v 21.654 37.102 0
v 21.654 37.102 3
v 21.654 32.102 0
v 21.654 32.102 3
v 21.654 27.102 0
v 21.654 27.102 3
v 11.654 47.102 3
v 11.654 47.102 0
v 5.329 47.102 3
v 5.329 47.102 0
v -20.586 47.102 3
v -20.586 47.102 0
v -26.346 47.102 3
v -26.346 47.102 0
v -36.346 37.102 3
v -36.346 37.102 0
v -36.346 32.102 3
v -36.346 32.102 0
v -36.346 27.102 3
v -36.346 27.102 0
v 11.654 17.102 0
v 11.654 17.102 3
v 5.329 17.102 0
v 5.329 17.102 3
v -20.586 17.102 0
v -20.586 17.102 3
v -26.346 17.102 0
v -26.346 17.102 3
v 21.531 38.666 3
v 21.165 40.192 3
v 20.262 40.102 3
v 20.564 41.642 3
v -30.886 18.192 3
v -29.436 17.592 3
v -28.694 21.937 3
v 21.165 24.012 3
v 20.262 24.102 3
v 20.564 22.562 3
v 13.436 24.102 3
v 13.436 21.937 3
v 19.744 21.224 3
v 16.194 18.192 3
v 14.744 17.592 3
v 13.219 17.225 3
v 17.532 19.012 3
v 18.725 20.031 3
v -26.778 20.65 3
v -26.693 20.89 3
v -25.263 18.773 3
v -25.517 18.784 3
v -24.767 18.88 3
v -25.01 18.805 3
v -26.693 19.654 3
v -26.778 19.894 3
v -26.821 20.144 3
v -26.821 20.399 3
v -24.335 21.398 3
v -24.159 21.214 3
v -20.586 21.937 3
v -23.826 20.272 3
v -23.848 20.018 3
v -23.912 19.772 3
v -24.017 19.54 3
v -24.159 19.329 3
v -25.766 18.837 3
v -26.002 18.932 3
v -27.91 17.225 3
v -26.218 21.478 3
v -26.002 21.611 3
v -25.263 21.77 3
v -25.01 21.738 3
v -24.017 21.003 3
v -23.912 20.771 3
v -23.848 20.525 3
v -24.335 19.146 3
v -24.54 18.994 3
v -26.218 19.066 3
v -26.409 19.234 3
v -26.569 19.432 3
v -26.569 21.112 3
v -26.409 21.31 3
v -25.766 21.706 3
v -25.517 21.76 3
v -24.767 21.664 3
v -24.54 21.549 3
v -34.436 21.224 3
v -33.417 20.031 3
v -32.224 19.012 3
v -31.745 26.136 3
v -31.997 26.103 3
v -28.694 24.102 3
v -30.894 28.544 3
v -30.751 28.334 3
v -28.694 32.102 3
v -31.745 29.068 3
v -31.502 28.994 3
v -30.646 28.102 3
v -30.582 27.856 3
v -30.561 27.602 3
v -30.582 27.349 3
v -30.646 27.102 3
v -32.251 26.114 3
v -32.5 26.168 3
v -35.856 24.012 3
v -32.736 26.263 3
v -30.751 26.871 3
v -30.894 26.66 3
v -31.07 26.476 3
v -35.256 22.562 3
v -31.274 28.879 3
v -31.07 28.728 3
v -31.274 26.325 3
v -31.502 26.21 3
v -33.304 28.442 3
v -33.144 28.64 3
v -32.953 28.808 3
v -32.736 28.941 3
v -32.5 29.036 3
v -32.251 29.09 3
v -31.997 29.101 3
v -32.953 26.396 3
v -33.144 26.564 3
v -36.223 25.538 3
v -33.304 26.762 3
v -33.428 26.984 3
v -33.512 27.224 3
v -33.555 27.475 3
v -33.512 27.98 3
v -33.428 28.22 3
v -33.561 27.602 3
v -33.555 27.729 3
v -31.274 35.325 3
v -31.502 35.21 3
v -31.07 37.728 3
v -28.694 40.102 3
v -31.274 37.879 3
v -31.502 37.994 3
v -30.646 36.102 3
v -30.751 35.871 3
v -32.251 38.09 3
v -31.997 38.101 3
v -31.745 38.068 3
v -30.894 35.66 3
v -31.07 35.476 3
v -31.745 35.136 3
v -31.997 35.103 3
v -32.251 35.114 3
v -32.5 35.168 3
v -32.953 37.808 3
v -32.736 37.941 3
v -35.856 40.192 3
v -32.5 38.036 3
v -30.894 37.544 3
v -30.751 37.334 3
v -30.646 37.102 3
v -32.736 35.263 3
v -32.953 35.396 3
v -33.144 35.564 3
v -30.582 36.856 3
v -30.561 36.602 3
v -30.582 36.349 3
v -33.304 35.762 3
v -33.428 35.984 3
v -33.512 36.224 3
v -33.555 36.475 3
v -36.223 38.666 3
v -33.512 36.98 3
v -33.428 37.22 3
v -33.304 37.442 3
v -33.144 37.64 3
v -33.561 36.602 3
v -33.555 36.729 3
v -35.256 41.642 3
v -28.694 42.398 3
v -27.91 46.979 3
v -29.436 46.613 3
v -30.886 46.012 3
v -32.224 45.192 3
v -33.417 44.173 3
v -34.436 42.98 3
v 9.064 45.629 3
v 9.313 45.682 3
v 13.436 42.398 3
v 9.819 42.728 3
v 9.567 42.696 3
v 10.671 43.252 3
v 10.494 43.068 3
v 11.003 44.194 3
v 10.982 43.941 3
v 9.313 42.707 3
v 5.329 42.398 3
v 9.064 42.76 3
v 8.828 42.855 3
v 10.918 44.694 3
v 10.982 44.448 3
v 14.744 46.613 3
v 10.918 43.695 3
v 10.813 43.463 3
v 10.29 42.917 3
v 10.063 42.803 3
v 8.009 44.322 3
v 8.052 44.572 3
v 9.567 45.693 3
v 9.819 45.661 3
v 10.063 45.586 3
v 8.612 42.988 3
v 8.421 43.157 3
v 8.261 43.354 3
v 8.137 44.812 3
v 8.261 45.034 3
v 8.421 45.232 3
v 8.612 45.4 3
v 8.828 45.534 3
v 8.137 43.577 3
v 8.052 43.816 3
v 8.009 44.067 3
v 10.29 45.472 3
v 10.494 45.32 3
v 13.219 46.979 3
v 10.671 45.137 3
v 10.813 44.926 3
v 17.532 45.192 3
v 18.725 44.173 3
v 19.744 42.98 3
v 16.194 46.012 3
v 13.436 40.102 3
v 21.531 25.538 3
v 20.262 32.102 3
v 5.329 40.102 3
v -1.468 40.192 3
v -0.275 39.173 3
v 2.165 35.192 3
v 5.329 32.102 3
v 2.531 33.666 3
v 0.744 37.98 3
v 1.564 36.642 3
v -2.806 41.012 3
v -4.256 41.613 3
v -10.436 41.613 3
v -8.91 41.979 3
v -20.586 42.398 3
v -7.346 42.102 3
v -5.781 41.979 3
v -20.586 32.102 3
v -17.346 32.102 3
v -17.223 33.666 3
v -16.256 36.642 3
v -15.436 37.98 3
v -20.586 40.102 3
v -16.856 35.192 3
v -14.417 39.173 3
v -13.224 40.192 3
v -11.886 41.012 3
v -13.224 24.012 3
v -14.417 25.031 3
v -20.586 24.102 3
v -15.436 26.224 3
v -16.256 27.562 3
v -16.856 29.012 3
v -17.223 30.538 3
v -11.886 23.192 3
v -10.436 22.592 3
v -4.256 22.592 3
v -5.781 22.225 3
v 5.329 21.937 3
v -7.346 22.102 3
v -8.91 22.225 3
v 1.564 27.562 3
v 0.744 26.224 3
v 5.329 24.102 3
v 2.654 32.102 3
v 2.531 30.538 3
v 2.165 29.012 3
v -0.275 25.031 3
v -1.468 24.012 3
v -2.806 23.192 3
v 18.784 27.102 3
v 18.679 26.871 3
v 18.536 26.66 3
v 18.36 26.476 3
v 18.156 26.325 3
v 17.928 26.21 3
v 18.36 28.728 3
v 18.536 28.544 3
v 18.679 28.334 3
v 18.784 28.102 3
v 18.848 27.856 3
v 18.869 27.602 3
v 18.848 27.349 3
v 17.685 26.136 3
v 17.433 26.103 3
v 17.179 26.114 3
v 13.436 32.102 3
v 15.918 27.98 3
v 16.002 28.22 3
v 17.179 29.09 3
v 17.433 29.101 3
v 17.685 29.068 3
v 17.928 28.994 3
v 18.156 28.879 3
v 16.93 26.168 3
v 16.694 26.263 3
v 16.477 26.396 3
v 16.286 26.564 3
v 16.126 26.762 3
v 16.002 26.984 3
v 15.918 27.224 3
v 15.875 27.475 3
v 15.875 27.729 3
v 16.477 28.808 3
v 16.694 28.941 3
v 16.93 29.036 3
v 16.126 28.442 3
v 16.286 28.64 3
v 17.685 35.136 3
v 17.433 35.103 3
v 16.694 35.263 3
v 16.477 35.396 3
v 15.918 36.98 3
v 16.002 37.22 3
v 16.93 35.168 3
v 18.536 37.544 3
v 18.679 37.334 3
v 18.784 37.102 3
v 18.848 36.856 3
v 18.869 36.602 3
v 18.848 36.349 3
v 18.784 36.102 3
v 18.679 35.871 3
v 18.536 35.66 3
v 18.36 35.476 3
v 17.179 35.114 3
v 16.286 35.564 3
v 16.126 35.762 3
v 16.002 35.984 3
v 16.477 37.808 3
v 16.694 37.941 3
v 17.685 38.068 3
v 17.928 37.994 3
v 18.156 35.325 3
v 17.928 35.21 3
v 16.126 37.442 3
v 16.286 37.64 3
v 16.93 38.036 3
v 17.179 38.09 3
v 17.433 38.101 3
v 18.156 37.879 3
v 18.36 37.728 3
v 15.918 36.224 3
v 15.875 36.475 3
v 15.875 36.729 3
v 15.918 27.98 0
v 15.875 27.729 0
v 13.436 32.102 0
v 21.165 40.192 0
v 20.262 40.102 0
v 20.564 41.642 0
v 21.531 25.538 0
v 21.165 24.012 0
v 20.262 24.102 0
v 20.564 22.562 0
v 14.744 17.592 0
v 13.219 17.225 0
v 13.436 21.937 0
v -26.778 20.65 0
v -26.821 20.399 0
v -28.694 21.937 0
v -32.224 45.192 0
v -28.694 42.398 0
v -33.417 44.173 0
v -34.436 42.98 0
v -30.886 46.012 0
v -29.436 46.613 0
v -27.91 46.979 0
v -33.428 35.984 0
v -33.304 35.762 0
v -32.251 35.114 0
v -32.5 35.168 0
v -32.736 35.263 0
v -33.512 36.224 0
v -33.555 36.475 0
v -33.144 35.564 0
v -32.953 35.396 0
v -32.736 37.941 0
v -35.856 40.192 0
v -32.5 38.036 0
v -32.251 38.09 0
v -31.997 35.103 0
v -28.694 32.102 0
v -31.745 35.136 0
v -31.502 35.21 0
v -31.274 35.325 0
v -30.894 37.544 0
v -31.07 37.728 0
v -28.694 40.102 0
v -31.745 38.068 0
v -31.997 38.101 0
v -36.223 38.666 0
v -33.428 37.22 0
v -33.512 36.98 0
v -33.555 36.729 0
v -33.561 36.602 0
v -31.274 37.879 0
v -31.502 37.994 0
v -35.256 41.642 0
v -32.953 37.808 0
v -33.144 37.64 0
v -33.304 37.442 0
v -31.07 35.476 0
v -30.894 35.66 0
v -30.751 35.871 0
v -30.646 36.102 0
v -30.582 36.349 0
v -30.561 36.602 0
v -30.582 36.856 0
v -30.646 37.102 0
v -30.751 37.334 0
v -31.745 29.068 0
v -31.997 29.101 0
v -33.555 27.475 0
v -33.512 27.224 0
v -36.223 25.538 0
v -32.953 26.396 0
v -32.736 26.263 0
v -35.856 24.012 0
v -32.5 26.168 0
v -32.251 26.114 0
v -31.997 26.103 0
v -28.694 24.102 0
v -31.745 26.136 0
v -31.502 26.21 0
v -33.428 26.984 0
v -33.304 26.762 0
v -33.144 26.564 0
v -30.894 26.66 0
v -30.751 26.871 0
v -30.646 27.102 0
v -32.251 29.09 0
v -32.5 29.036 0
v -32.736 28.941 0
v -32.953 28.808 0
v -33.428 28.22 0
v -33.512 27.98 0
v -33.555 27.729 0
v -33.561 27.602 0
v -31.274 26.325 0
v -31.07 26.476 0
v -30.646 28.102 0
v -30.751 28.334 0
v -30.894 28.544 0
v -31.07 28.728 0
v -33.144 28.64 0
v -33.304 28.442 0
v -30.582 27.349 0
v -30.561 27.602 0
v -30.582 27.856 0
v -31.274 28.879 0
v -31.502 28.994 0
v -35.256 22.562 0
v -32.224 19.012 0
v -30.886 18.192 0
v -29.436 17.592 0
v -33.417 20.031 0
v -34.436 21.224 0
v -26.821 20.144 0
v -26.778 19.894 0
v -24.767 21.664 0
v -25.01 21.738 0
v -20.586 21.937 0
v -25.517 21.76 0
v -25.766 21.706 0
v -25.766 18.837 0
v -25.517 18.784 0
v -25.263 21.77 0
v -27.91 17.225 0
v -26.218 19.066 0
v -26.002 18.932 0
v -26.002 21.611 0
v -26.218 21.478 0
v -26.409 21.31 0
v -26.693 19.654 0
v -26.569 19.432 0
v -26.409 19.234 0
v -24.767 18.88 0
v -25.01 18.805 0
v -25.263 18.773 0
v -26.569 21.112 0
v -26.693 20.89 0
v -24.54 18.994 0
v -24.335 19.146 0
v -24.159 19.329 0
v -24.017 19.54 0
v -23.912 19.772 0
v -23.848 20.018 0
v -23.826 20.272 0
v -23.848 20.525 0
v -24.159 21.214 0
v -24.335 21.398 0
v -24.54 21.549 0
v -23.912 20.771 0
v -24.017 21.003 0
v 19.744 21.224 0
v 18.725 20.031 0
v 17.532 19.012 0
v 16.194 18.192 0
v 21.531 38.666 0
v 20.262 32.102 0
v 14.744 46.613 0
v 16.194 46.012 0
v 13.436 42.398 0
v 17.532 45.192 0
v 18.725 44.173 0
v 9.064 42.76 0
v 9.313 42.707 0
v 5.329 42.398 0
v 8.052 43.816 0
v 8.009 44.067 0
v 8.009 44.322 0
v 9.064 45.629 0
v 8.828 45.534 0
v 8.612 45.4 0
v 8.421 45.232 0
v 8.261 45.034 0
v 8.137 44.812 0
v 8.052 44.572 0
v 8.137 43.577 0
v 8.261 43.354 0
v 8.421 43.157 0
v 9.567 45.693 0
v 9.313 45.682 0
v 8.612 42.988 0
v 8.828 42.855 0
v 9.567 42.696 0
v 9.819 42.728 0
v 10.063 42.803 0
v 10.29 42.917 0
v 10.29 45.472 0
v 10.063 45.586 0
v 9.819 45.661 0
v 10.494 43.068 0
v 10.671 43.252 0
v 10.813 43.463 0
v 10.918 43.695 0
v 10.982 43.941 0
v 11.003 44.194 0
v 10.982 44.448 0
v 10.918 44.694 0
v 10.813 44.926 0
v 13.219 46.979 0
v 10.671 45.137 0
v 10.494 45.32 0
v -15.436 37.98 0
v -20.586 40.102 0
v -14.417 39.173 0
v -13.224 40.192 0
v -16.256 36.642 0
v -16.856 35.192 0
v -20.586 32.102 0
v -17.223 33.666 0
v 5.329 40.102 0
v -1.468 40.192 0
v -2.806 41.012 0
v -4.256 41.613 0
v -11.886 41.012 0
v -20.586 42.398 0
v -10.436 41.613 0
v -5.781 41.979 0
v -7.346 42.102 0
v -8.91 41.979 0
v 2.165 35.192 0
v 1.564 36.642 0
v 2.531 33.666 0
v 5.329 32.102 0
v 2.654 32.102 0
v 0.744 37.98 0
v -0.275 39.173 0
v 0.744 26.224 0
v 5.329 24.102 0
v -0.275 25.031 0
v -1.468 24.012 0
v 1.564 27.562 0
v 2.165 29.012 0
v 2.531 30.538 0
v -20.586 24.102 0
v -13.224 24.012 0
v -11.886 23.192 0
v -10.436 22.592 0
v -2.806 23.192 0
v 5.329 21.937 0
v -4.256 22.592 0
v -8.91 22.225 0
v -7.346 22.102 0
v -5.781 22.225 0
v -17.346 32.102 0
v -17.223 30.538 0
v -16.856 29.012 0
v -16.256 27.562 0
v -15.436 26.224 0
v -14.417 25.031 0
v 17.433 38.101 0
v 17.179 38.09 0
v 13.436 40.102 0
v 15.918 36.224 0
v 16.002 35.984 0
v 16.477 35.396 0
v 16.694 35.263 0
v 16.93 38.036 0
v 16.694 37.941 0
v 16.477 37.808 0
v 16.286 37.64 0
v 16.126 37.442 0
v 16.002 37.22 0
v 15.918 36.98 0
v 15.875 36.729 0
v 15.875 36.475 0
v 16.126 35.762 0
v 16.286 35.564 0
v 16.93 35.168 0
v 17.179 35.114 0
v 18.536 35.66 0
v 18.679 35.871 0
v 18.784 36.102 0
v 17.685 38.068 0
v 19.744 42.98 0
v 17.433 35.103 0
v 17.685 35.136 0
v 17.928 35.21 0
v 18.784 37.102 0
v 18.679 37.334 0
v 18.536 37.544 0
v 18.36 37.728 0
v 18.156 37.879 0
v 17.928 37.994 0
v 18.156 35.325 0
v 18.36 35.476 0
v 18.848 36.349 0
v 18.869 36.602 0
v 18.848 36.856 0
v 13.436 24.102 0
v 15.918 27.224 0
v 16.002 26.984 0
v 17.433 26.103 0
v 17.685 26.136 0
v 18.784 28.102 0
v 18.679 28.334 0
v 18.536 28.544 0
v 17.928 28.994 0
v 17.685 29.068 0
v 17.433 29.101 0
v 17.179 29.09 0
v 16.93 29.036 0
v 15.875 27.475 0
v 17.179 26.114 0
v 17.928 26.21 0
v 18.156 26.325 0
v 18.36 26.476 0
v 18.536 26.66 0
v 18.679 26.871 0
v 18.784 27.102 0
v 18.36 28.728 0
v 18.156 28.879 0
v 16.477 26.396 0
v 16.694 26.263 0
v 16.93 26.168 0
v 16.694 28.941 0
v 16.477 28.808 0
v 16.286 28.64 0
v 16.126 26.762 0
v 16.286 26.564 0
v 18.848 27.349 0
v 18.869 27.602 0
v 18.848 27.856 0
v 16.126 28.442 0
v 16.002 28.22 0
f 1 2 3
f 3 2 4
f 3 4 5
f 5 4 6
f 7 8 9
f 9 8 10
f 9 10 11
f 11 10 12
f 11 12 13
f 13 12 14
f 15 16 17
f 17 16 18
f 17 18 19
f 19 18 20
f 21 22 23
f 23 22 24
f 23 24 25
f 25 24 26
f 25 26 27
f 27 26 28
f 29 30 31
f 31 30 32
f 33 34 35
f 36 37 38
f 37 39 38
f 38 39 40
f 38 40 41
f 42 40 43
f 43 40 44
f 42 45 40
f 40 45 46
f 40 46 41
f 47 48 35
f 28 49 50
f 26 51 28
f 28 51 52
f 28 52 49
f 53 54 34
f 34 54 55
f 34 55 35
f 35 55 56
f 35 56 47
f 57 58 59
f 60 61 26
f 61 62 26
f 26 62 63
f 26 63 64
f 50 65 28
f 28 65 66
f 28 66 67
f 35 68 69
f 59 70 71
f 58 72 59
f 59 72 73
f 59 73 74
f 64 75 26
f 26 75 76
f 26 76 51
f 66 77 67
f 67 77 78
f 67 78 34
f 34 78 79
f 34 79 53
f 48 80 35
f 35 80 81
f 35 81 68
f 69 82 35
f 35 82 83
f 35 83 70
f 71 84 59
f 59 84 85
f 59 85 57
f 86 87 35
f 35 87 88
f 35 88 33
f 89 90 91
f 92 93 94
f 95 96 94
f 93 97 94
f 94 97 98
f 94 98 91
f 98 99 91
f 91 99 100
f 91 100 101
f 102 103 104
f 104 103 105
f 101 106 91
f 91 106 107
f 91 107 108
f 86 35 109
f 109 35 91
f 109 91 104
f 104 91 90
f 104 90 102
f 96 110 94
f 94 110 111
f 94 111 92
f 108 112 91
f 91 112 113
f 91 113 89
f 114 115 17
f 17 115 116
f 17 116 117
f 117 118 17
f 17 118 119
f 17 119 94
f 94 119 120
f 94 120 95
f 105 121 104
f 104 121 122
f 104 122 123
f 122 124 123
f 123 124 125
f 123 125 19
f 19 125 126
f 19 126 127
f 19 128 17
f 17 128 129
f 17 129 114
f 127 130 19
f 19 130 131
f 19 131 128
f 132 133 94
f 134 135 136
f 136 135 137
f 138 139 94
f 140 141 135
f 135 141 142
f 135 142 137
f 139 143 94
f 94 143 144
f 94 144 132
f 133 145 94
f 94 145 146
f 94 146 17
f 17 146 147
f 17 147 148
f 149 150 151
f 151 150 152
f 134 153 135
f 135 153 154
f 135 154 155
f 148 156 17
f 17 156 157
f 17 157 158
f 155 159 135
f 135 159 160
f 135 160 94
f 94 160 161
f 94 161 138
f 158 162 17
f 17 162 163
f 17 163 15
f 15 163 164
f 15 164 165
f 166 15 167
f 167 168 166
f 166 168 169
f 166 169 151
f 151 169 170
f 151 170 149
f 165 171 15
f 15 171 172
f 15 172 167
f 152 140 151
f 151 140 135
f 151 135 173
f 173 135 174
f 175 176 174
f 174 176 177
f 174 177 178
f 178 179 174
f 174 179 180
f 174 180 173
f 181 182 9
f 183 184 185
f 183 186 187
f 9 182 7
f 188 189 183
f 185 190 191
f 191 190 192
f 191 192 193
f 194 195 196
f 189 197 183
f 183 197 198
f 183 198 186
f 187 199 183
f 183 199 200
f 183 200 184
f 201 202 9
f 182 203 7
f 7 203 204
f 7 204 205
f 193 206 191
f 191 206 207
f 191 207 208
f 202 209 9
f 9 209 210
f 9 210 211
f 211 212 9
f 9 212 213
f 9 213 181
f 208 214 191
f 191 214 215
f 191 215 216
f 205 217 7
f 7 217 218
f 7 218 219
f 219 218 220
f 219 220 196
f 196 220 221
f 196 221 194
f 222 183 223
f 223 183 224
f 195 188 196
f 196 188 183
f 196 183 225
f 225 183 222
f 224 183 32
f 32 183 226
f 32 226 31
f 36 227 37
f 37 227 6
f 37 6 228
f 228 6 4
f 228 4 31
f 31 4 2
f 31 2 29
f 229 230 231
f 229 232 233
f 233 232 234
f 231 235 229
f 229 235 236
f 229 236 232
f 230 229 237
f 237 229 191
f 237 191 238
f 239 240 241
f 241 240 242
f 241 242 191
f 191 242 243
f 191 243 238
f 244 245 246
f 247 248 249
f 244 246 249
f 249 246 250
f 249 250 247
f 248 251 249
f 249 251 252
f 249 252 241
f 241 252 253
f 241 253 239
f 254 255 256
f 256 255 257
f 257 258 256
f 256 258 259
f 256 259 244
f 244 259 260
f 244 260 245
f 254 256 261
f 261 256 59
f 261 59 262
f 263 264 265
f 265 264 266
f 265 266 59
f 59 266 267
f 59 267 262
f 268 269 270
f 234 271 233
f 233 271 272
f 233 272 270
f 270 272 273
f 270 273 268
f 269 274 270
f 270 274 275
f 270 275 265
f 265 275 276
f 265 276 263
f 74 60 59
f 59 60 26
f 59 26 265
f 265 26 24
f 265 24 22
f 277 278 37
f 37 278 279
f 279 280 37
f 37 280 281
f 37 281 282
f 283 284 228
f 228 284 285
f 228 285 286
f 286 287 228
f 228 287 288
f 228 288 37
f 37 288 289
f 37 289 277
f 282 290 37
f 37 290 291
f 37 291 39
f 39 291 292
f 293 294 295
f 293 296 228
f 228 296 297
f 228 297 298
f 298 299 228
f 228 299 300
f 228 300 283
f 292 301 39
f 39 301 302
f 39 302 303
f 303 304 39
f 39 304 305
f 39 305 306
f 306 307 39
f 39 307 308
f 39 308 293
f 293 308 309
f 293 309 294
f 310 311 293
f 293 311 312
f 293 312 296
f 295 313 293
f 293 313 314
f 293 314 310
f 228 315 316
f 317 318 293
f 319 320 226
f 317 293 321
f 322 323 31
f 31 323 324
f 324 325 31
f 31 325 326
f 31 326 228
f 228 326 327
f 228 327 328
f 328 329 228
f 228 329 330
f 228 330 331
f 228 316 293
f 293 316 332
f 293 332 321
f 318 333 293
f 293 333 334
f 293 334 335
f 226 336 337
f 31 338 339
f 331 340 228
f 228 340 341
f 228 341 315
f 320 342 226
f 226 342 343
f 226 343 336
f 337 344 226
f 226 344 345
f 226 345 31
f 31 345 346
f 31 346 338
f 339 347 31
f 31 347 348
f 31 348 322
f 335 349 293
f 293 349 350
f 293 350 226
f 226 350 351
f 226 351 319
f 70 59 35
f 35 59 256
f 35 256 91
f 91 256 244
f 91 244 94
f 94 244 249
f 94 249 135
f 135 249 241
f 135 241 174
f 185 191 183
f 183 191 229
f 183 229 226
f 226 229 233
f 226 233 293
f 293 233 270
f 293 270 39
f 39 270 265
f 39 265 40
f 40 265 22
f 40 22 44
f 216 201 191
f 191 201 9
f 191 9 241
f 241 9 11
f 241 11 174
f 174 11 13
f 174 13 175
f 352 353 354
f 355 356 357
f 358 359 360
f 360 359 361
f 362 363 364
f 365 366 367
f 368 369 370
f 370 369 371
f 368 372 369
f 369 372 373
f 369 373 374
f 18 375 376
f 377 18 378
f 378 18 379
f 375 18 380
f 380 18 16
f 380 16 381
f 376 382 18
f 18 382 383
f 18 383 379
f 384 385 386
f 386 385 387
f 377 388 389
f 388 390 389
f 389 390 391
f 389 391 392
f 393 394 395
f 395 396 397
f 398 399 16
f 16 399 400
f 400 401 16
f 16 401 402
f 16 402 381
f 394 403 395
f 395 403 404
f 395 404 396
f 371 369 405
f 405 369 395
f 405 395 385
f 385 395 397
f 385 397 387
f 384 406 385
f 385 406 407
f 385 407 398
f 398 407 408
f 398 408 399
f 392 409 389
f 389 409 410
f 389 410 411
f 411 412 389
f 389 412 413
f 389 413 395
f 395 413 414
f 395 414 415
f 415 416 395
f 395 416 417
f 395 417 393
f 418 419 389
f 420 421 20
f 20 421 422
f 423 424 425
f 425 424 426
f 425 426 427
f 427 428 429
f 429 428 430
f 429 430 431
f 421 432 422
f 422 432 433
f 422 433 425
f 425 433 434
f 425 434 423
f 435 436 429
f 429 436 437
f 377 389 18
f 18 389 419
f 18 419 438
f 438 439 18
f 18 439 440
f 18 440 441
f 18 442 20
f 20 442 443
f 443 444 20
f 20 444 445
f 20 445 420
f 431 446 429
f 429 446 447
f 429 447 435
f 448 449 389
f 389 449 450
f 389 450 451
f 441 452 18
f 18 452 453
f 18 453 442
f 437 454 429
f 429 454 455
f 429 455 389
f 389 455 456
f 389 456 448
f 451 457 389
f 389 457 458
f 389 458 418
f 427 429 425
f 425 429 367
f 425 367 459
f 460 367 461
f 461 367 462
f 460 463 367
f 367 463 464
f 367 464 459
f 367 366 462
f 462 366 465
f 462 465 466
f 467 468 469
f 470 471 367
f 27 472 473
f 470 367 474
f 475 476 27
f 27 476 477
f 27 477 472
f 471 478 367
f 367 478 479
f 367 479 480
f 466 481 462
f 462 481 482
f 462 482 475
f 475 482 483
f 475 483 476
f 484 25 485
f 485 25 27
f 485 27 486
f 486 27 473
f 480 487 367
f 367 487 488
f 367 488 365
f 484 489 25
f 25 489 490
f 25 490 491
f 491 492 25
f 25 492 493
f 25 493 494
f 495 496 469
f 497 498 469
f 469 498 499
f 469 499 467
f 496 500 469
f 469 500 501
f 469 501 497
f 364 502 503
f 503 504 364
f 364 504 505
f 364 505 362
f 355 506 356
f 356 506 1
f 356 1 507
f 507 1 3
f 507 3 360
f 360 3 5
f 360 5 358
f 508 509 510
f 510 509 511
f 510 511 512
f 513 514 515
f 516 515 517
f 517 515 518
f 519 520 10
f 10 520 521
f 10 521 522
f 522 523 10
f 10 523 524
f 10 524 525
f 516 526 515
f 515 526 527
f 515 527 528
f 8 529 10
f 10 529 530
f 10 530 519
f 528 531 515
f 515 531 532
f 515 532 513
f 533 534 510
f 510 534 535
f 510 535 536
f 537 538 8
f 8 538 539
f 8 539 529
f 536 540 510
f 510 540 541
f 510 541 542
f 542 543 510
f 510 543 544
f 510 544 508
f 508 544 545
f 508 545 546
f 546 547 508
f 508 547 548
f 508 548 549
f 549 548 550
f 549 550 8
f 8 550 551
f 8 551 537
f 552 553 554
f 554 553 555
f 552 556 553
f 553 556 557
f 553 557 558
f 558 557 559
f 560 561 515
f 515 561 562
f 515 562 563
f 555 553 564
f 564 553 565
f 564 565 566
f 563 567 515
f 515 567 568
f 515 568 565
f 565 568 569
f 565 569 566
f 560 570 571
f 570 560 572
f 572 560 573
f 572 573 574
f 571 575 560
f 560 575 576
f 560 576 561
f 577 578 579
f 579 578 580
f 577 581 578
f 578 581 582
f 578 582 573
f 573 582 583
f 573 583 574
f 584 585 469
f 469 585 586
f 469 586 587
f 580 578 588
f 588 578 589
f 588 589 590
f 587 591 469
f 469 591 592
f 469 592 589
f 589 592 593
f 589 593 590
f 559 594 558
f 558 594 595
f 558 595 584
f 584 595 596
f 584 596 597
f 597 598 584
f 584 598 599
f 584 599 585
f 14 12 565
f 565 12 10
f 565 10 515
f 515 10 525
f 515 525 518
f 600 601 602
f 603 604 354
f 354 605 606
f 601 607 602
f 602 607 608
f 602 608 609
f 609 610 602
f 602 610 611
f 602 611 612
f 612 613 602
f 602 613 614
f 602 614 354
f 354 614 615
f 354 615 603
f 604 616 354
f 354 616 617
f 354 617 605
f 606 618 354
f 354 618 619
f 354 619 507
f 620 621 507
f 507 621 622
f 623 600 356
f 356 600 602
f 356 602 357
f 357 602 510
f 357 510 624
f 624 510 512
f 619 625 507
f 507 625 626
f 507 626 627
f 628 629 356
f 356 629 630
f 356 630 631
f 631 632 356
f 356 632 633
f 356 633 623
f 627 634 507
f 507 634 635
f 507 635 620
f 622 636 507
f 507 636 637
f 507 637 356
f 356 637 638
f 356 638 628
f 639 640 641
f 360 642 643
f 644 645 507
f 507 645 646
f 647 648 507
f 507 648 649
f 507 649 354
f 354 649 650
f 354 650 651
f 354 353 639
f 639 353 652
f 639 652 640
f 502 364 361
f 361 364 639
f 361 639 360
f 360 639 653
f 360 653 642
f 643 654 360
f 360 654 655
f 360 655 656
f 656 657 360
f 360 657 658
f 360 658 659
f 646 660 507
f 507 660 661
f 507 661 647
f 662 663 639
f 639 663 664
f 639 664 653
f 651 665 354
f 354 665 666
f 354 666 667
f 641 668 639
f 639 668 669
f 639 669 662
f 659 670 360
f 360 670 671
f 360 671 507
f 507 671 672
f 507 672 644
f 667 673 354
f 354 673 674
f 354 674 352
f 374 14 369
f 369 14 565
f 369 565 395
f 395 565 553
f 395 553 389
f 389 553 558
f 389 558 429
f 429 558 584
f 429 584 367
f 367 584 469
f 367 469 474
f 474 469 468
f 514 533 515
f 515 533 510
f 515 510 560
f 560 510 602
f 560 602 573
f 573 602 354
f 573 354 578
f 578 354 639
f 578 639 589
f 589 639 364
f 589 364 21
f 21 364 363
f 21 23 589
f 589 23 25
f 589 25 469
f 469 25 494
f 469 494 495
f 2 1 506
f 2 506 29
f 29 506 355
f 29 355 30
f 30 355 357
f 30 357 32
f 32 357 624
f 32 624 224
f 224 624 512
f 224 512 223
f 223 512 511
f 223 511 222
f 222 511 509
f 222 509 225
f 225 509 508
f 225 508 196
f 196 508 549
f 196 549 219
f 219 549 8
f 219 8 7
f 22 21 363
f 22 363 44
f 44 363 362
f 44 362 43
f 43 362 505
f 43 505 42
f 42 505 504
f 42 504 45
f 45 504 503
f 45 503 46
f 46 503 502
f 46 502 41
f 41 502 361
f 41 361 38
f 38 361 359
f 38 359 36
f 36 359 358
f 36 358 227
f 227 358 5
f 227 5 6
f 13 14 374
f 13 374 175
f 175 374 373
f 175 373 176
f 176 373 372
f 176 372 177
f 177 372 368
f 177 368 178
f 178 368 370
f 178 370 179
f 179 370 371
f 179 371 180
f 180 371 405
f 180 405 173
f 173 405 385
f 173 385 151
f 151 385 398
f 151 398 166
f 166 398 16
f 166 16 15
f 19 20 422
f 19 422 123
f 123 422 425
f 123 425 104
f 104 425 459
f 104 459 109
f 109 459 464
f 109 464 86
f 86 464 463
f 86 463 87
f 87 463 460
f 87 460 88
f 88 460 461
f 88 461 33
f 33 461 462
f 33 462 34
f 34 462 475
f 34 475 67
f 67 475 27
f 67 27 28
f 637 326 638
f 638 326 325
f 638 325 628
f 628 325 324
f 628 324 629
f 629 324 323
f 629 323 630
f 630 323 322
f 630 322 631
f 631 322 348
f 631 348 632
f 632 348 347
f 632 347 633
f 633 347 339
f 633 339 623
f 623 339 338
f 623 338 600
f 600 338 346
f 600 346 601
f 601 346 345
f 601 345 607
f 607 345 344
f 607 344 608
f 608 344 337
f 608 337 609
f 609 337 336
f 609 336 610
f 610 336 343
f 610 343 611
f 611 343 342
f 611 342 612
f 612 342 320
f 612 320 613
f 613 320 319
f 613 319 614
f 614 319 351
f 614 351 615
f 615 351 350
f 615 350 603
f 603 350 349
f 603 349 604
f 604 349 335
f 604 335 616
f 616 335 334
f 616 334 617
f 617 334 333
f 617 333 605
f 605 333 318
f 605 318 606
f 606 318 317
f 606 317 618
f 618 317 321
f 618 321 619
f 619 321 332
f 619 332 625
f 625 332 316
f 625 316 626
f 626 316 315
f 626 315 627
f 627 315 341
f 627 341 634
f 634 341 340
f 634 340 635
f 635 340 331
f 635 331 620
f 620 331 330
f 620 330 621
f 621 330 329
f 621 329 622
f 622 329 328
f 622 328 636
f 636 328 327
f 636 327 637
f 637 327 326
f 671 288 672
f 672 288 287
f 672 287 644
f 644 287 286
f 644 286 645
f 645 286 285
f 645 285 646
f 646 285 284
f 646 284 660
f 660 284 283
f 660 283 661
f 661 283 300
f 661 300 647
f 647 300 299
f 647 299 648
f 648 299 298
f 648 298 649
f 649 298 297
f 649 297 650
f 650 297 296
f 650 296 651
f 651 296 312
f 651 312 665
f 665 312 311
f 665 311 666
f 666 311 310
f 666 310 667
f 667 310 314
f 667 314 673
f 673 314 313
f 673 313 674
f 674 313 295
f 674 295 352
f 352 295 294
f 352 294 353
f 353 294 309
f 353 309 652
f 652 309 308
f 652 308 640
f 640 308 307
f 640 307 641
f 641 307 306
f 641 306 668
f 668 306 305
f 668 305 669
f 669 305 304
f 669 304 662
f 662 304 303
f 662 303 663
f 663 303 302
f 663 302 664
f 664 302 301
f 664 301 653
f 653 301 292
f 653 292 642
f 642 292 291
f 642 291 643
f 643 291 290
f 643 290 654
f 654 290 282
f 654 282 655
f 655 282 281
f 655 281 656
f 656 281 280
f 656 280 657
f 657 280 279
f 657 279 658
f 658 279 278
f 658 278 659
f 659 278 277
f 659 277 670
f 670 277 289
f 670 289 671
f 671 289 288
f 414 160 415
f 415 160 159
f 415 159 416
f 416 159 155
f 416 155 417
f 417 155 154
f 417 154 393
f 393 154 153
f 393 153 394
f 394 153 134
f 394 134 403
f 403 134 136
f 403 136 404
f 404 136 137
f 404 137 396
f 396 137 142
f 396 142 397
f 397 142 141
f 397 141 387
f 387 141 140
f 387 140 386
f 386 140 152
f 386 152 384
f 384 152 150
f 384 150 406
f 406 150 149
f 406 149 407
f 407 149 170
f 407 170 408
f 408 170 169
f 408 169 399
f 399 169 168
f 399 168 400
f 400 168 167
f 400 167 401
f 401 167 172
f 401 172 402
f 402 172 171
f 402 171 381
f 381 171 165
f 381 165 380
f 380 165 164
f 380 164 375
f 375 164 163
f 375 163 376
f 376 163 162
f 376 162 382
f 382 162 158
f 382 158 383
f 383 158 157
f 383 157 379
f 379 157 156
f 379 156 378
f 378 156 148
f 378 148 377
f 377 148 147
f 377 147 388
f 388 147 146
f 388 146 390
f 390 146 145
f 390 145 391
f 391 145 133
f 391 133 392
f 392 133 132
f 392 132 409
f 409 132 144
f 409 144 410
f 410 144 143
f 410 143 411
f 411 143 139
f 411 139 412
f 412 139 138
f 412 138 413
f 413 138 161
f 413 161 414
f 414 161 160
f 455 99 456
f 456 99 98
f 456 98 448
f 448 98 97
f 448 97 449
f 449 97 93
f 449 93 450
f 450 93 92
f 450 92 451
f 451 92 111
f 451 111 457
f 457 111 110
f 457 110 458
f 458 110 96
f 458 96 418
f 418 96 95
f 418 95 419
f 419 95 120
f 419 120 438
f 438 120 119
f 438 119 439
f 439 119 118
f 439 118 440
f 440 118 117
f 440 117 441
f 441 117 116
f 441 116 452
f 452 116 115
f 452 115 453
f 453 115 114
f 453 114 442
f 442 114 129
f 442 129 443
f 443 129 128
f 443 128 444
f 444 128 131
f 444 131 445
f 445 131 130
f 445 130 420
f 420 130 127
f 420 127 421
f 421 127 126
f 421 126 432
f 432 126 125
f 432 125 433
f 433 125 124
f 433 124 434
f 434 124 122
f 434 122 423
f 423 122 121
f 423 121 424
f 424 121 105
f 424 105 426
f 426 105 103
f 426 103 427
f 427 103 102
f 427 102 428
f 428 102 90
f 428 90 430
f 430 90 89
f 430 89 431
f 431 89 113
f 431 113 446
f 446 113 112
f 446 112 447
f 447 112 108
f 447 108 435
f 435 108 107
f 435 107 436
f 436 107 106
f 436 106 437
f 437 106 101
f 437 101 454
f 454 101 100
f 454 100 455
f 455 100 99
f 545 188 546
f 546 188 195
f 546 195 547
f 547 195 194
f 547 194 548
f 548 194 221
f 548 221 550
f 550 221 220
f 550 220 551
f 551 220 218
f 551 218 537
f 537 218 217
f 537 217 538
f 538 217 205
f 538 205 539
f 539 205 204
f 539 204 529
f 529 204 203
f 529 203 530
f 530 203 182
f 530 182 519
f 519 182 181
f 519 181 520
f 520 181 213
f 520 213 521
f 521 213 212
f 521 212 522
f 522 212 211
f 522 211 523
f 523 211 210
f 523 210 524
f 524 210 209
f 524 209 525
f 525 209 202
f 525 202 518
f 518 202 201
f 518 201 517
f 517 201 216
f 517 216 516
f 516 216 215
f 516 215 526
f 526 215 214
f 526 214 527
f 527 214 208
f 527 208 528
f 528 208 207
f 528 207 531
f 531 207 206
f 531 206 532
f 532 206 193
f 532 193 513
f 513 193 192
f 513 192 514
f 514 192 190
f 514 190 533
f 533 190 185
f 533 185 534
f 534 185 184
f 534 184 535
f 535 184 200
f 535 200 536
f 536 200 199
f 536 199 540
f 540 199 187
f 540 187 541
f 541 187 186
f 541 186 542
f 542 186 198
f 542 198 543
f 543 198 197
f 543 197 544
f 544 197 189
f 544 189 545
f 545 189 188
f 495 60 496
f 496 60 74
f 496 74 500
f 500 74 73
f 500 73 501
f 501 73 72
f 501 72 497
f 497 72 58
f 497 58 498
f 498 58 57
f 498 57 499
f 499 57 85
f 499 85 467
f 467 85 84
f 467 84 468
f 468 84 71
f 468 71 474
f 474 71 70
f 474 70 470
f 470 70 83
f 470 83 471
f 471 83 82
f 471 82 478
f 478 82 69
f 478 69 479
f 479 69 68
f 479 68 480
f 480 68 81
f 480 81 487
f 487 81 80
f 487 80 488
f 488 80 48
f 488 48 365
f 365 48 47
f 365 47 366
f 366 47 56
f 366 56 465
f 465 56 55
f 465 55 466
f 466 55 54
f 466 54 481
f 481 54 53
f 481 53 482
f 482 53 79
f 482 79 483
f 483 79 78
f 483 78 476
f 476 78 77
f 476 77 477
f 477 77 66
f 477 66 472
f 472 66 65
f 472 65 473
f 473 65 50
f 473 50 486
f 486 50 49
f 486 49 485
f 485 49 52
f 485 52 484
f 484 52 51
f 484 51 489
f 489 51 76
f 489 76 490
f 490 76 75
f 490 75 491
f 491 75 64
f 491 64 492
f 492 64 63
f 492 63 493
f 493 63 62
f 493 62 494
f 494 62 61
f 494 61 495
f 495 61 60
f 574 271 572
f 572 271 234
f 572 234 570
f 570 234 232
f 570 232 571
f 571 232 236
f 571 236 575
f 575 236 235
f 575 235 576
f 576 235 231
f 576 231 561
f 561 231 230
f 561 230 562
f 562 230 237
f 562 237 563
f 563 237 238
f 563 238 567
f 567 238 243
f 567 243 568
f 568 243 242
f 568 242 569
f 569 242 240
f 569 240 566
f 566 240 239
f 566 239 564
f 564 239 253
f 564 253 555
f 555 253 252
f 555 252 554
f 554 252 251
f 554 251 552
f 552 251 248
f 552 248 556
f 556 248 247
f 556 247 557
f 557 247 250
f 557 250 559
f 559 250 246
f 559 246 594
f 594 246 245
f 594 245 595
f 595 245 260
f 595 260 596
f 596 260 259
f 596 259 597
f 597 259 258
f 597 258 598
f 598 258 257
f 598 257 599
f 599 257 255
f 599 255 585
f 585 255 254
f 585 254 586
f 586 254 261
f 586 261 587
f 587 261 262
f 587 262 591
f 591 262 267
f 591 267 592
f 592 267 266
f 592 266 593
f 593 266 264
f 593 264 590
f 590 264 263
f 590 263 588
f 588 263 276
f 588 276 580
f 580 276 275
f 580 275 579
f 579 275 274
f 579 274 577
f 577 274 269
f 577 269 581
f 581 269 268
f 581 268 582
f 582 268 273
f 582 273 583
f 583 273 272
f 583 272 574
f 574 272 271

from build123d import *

# Parameters (mm, degrees)
SKETCH1_W           = 58
SKETCH1_H           = 30
BOSS_EXTRUDE1_DEPTH = 3
FILLET1_R           = 10
SKETCH2_R           = 1.5
CUT_EXTRUDE1_DEPTH  = 3
SKETCH3_R           = 1.5
CUT_EXTRUDE2_DEPTH  = 3
SKETCH4_R           = 10
CUT_EXTRUDE3_DEPTH  = 10


with BuildPart() as part:
    # Sketch1 → Boss-Extrude1 (new body)
    with BuildSketch(Plane.XY):
        with Locations((-7.345808821, 32.102080843)):
            Rectangle(SKETCH1_W, SKETCH1_H)
    extrude(amount=BOSS_EXTRUDE1_DEPTH)

    # Fillet1
    fillet1_edges = [part.edges().sort_by_distance(p)[0] for p in [
        (21.654191179, 17.102080843, 1.5),
        (-36.345808821, 17.102080843, 1.5),
        (-36.345808821, 47.102080843, 1.5),
        (21.654191179, 47.102080843, 1.5),
    ]]
    fillet(fillet1_edges, radius=FILLET1_R)

    # Sketch2 → Cut-Extrude1 (cut)
    with BuildSketch(Plane.XY.offset(3)):
        with Locations((17.369191179, 27.602080843)):
            Circle(SKETCH2_R)
        with Locations((17.369191179, 36.602080843)):
            Circle(SKETCH2_R)
    cut_extrude1 = extrude(amount=-CUT_EXTRUDE1_DEPTH, mode=Mode.SUBTRACT)

    # Mirror1: Cut-Extrude1 across plane
    add(cut_extrude1.mirror(Plane(origin=(-7.345808821, 0, 0), x_dir=(0, 0, 1), z_dir=(1, 0, 0))), mode=Mode.SUBTRACT)

    # Sketch3 → Cut-Extrude2 (cut)
    with BuildSketch(Plane.XY.offset(3)):
        with Locations((-25.326377841, 20.27169556)):
            Circle(SKETCH3_R)
        with Locations((9.503472923, 44.194442915)):
            Circle(SKETCH3_R)
    extrude(amount=-CUT_EXTRUDE2_DEPTH, mode=Mode.SUBTRACT)

    # Sketch4 → Cut-Extrude3 (cut)
    with BuildSketch(Plane.XY.offset(3)):
        with Locations((-7.345808821, 32.102080843)):
            Circle(SKETCH4_R)
    extrude(amount=-CUT_EXTRUDE3_DEPTH, mode=Mode.SUBTRACT)


solid = part.part
